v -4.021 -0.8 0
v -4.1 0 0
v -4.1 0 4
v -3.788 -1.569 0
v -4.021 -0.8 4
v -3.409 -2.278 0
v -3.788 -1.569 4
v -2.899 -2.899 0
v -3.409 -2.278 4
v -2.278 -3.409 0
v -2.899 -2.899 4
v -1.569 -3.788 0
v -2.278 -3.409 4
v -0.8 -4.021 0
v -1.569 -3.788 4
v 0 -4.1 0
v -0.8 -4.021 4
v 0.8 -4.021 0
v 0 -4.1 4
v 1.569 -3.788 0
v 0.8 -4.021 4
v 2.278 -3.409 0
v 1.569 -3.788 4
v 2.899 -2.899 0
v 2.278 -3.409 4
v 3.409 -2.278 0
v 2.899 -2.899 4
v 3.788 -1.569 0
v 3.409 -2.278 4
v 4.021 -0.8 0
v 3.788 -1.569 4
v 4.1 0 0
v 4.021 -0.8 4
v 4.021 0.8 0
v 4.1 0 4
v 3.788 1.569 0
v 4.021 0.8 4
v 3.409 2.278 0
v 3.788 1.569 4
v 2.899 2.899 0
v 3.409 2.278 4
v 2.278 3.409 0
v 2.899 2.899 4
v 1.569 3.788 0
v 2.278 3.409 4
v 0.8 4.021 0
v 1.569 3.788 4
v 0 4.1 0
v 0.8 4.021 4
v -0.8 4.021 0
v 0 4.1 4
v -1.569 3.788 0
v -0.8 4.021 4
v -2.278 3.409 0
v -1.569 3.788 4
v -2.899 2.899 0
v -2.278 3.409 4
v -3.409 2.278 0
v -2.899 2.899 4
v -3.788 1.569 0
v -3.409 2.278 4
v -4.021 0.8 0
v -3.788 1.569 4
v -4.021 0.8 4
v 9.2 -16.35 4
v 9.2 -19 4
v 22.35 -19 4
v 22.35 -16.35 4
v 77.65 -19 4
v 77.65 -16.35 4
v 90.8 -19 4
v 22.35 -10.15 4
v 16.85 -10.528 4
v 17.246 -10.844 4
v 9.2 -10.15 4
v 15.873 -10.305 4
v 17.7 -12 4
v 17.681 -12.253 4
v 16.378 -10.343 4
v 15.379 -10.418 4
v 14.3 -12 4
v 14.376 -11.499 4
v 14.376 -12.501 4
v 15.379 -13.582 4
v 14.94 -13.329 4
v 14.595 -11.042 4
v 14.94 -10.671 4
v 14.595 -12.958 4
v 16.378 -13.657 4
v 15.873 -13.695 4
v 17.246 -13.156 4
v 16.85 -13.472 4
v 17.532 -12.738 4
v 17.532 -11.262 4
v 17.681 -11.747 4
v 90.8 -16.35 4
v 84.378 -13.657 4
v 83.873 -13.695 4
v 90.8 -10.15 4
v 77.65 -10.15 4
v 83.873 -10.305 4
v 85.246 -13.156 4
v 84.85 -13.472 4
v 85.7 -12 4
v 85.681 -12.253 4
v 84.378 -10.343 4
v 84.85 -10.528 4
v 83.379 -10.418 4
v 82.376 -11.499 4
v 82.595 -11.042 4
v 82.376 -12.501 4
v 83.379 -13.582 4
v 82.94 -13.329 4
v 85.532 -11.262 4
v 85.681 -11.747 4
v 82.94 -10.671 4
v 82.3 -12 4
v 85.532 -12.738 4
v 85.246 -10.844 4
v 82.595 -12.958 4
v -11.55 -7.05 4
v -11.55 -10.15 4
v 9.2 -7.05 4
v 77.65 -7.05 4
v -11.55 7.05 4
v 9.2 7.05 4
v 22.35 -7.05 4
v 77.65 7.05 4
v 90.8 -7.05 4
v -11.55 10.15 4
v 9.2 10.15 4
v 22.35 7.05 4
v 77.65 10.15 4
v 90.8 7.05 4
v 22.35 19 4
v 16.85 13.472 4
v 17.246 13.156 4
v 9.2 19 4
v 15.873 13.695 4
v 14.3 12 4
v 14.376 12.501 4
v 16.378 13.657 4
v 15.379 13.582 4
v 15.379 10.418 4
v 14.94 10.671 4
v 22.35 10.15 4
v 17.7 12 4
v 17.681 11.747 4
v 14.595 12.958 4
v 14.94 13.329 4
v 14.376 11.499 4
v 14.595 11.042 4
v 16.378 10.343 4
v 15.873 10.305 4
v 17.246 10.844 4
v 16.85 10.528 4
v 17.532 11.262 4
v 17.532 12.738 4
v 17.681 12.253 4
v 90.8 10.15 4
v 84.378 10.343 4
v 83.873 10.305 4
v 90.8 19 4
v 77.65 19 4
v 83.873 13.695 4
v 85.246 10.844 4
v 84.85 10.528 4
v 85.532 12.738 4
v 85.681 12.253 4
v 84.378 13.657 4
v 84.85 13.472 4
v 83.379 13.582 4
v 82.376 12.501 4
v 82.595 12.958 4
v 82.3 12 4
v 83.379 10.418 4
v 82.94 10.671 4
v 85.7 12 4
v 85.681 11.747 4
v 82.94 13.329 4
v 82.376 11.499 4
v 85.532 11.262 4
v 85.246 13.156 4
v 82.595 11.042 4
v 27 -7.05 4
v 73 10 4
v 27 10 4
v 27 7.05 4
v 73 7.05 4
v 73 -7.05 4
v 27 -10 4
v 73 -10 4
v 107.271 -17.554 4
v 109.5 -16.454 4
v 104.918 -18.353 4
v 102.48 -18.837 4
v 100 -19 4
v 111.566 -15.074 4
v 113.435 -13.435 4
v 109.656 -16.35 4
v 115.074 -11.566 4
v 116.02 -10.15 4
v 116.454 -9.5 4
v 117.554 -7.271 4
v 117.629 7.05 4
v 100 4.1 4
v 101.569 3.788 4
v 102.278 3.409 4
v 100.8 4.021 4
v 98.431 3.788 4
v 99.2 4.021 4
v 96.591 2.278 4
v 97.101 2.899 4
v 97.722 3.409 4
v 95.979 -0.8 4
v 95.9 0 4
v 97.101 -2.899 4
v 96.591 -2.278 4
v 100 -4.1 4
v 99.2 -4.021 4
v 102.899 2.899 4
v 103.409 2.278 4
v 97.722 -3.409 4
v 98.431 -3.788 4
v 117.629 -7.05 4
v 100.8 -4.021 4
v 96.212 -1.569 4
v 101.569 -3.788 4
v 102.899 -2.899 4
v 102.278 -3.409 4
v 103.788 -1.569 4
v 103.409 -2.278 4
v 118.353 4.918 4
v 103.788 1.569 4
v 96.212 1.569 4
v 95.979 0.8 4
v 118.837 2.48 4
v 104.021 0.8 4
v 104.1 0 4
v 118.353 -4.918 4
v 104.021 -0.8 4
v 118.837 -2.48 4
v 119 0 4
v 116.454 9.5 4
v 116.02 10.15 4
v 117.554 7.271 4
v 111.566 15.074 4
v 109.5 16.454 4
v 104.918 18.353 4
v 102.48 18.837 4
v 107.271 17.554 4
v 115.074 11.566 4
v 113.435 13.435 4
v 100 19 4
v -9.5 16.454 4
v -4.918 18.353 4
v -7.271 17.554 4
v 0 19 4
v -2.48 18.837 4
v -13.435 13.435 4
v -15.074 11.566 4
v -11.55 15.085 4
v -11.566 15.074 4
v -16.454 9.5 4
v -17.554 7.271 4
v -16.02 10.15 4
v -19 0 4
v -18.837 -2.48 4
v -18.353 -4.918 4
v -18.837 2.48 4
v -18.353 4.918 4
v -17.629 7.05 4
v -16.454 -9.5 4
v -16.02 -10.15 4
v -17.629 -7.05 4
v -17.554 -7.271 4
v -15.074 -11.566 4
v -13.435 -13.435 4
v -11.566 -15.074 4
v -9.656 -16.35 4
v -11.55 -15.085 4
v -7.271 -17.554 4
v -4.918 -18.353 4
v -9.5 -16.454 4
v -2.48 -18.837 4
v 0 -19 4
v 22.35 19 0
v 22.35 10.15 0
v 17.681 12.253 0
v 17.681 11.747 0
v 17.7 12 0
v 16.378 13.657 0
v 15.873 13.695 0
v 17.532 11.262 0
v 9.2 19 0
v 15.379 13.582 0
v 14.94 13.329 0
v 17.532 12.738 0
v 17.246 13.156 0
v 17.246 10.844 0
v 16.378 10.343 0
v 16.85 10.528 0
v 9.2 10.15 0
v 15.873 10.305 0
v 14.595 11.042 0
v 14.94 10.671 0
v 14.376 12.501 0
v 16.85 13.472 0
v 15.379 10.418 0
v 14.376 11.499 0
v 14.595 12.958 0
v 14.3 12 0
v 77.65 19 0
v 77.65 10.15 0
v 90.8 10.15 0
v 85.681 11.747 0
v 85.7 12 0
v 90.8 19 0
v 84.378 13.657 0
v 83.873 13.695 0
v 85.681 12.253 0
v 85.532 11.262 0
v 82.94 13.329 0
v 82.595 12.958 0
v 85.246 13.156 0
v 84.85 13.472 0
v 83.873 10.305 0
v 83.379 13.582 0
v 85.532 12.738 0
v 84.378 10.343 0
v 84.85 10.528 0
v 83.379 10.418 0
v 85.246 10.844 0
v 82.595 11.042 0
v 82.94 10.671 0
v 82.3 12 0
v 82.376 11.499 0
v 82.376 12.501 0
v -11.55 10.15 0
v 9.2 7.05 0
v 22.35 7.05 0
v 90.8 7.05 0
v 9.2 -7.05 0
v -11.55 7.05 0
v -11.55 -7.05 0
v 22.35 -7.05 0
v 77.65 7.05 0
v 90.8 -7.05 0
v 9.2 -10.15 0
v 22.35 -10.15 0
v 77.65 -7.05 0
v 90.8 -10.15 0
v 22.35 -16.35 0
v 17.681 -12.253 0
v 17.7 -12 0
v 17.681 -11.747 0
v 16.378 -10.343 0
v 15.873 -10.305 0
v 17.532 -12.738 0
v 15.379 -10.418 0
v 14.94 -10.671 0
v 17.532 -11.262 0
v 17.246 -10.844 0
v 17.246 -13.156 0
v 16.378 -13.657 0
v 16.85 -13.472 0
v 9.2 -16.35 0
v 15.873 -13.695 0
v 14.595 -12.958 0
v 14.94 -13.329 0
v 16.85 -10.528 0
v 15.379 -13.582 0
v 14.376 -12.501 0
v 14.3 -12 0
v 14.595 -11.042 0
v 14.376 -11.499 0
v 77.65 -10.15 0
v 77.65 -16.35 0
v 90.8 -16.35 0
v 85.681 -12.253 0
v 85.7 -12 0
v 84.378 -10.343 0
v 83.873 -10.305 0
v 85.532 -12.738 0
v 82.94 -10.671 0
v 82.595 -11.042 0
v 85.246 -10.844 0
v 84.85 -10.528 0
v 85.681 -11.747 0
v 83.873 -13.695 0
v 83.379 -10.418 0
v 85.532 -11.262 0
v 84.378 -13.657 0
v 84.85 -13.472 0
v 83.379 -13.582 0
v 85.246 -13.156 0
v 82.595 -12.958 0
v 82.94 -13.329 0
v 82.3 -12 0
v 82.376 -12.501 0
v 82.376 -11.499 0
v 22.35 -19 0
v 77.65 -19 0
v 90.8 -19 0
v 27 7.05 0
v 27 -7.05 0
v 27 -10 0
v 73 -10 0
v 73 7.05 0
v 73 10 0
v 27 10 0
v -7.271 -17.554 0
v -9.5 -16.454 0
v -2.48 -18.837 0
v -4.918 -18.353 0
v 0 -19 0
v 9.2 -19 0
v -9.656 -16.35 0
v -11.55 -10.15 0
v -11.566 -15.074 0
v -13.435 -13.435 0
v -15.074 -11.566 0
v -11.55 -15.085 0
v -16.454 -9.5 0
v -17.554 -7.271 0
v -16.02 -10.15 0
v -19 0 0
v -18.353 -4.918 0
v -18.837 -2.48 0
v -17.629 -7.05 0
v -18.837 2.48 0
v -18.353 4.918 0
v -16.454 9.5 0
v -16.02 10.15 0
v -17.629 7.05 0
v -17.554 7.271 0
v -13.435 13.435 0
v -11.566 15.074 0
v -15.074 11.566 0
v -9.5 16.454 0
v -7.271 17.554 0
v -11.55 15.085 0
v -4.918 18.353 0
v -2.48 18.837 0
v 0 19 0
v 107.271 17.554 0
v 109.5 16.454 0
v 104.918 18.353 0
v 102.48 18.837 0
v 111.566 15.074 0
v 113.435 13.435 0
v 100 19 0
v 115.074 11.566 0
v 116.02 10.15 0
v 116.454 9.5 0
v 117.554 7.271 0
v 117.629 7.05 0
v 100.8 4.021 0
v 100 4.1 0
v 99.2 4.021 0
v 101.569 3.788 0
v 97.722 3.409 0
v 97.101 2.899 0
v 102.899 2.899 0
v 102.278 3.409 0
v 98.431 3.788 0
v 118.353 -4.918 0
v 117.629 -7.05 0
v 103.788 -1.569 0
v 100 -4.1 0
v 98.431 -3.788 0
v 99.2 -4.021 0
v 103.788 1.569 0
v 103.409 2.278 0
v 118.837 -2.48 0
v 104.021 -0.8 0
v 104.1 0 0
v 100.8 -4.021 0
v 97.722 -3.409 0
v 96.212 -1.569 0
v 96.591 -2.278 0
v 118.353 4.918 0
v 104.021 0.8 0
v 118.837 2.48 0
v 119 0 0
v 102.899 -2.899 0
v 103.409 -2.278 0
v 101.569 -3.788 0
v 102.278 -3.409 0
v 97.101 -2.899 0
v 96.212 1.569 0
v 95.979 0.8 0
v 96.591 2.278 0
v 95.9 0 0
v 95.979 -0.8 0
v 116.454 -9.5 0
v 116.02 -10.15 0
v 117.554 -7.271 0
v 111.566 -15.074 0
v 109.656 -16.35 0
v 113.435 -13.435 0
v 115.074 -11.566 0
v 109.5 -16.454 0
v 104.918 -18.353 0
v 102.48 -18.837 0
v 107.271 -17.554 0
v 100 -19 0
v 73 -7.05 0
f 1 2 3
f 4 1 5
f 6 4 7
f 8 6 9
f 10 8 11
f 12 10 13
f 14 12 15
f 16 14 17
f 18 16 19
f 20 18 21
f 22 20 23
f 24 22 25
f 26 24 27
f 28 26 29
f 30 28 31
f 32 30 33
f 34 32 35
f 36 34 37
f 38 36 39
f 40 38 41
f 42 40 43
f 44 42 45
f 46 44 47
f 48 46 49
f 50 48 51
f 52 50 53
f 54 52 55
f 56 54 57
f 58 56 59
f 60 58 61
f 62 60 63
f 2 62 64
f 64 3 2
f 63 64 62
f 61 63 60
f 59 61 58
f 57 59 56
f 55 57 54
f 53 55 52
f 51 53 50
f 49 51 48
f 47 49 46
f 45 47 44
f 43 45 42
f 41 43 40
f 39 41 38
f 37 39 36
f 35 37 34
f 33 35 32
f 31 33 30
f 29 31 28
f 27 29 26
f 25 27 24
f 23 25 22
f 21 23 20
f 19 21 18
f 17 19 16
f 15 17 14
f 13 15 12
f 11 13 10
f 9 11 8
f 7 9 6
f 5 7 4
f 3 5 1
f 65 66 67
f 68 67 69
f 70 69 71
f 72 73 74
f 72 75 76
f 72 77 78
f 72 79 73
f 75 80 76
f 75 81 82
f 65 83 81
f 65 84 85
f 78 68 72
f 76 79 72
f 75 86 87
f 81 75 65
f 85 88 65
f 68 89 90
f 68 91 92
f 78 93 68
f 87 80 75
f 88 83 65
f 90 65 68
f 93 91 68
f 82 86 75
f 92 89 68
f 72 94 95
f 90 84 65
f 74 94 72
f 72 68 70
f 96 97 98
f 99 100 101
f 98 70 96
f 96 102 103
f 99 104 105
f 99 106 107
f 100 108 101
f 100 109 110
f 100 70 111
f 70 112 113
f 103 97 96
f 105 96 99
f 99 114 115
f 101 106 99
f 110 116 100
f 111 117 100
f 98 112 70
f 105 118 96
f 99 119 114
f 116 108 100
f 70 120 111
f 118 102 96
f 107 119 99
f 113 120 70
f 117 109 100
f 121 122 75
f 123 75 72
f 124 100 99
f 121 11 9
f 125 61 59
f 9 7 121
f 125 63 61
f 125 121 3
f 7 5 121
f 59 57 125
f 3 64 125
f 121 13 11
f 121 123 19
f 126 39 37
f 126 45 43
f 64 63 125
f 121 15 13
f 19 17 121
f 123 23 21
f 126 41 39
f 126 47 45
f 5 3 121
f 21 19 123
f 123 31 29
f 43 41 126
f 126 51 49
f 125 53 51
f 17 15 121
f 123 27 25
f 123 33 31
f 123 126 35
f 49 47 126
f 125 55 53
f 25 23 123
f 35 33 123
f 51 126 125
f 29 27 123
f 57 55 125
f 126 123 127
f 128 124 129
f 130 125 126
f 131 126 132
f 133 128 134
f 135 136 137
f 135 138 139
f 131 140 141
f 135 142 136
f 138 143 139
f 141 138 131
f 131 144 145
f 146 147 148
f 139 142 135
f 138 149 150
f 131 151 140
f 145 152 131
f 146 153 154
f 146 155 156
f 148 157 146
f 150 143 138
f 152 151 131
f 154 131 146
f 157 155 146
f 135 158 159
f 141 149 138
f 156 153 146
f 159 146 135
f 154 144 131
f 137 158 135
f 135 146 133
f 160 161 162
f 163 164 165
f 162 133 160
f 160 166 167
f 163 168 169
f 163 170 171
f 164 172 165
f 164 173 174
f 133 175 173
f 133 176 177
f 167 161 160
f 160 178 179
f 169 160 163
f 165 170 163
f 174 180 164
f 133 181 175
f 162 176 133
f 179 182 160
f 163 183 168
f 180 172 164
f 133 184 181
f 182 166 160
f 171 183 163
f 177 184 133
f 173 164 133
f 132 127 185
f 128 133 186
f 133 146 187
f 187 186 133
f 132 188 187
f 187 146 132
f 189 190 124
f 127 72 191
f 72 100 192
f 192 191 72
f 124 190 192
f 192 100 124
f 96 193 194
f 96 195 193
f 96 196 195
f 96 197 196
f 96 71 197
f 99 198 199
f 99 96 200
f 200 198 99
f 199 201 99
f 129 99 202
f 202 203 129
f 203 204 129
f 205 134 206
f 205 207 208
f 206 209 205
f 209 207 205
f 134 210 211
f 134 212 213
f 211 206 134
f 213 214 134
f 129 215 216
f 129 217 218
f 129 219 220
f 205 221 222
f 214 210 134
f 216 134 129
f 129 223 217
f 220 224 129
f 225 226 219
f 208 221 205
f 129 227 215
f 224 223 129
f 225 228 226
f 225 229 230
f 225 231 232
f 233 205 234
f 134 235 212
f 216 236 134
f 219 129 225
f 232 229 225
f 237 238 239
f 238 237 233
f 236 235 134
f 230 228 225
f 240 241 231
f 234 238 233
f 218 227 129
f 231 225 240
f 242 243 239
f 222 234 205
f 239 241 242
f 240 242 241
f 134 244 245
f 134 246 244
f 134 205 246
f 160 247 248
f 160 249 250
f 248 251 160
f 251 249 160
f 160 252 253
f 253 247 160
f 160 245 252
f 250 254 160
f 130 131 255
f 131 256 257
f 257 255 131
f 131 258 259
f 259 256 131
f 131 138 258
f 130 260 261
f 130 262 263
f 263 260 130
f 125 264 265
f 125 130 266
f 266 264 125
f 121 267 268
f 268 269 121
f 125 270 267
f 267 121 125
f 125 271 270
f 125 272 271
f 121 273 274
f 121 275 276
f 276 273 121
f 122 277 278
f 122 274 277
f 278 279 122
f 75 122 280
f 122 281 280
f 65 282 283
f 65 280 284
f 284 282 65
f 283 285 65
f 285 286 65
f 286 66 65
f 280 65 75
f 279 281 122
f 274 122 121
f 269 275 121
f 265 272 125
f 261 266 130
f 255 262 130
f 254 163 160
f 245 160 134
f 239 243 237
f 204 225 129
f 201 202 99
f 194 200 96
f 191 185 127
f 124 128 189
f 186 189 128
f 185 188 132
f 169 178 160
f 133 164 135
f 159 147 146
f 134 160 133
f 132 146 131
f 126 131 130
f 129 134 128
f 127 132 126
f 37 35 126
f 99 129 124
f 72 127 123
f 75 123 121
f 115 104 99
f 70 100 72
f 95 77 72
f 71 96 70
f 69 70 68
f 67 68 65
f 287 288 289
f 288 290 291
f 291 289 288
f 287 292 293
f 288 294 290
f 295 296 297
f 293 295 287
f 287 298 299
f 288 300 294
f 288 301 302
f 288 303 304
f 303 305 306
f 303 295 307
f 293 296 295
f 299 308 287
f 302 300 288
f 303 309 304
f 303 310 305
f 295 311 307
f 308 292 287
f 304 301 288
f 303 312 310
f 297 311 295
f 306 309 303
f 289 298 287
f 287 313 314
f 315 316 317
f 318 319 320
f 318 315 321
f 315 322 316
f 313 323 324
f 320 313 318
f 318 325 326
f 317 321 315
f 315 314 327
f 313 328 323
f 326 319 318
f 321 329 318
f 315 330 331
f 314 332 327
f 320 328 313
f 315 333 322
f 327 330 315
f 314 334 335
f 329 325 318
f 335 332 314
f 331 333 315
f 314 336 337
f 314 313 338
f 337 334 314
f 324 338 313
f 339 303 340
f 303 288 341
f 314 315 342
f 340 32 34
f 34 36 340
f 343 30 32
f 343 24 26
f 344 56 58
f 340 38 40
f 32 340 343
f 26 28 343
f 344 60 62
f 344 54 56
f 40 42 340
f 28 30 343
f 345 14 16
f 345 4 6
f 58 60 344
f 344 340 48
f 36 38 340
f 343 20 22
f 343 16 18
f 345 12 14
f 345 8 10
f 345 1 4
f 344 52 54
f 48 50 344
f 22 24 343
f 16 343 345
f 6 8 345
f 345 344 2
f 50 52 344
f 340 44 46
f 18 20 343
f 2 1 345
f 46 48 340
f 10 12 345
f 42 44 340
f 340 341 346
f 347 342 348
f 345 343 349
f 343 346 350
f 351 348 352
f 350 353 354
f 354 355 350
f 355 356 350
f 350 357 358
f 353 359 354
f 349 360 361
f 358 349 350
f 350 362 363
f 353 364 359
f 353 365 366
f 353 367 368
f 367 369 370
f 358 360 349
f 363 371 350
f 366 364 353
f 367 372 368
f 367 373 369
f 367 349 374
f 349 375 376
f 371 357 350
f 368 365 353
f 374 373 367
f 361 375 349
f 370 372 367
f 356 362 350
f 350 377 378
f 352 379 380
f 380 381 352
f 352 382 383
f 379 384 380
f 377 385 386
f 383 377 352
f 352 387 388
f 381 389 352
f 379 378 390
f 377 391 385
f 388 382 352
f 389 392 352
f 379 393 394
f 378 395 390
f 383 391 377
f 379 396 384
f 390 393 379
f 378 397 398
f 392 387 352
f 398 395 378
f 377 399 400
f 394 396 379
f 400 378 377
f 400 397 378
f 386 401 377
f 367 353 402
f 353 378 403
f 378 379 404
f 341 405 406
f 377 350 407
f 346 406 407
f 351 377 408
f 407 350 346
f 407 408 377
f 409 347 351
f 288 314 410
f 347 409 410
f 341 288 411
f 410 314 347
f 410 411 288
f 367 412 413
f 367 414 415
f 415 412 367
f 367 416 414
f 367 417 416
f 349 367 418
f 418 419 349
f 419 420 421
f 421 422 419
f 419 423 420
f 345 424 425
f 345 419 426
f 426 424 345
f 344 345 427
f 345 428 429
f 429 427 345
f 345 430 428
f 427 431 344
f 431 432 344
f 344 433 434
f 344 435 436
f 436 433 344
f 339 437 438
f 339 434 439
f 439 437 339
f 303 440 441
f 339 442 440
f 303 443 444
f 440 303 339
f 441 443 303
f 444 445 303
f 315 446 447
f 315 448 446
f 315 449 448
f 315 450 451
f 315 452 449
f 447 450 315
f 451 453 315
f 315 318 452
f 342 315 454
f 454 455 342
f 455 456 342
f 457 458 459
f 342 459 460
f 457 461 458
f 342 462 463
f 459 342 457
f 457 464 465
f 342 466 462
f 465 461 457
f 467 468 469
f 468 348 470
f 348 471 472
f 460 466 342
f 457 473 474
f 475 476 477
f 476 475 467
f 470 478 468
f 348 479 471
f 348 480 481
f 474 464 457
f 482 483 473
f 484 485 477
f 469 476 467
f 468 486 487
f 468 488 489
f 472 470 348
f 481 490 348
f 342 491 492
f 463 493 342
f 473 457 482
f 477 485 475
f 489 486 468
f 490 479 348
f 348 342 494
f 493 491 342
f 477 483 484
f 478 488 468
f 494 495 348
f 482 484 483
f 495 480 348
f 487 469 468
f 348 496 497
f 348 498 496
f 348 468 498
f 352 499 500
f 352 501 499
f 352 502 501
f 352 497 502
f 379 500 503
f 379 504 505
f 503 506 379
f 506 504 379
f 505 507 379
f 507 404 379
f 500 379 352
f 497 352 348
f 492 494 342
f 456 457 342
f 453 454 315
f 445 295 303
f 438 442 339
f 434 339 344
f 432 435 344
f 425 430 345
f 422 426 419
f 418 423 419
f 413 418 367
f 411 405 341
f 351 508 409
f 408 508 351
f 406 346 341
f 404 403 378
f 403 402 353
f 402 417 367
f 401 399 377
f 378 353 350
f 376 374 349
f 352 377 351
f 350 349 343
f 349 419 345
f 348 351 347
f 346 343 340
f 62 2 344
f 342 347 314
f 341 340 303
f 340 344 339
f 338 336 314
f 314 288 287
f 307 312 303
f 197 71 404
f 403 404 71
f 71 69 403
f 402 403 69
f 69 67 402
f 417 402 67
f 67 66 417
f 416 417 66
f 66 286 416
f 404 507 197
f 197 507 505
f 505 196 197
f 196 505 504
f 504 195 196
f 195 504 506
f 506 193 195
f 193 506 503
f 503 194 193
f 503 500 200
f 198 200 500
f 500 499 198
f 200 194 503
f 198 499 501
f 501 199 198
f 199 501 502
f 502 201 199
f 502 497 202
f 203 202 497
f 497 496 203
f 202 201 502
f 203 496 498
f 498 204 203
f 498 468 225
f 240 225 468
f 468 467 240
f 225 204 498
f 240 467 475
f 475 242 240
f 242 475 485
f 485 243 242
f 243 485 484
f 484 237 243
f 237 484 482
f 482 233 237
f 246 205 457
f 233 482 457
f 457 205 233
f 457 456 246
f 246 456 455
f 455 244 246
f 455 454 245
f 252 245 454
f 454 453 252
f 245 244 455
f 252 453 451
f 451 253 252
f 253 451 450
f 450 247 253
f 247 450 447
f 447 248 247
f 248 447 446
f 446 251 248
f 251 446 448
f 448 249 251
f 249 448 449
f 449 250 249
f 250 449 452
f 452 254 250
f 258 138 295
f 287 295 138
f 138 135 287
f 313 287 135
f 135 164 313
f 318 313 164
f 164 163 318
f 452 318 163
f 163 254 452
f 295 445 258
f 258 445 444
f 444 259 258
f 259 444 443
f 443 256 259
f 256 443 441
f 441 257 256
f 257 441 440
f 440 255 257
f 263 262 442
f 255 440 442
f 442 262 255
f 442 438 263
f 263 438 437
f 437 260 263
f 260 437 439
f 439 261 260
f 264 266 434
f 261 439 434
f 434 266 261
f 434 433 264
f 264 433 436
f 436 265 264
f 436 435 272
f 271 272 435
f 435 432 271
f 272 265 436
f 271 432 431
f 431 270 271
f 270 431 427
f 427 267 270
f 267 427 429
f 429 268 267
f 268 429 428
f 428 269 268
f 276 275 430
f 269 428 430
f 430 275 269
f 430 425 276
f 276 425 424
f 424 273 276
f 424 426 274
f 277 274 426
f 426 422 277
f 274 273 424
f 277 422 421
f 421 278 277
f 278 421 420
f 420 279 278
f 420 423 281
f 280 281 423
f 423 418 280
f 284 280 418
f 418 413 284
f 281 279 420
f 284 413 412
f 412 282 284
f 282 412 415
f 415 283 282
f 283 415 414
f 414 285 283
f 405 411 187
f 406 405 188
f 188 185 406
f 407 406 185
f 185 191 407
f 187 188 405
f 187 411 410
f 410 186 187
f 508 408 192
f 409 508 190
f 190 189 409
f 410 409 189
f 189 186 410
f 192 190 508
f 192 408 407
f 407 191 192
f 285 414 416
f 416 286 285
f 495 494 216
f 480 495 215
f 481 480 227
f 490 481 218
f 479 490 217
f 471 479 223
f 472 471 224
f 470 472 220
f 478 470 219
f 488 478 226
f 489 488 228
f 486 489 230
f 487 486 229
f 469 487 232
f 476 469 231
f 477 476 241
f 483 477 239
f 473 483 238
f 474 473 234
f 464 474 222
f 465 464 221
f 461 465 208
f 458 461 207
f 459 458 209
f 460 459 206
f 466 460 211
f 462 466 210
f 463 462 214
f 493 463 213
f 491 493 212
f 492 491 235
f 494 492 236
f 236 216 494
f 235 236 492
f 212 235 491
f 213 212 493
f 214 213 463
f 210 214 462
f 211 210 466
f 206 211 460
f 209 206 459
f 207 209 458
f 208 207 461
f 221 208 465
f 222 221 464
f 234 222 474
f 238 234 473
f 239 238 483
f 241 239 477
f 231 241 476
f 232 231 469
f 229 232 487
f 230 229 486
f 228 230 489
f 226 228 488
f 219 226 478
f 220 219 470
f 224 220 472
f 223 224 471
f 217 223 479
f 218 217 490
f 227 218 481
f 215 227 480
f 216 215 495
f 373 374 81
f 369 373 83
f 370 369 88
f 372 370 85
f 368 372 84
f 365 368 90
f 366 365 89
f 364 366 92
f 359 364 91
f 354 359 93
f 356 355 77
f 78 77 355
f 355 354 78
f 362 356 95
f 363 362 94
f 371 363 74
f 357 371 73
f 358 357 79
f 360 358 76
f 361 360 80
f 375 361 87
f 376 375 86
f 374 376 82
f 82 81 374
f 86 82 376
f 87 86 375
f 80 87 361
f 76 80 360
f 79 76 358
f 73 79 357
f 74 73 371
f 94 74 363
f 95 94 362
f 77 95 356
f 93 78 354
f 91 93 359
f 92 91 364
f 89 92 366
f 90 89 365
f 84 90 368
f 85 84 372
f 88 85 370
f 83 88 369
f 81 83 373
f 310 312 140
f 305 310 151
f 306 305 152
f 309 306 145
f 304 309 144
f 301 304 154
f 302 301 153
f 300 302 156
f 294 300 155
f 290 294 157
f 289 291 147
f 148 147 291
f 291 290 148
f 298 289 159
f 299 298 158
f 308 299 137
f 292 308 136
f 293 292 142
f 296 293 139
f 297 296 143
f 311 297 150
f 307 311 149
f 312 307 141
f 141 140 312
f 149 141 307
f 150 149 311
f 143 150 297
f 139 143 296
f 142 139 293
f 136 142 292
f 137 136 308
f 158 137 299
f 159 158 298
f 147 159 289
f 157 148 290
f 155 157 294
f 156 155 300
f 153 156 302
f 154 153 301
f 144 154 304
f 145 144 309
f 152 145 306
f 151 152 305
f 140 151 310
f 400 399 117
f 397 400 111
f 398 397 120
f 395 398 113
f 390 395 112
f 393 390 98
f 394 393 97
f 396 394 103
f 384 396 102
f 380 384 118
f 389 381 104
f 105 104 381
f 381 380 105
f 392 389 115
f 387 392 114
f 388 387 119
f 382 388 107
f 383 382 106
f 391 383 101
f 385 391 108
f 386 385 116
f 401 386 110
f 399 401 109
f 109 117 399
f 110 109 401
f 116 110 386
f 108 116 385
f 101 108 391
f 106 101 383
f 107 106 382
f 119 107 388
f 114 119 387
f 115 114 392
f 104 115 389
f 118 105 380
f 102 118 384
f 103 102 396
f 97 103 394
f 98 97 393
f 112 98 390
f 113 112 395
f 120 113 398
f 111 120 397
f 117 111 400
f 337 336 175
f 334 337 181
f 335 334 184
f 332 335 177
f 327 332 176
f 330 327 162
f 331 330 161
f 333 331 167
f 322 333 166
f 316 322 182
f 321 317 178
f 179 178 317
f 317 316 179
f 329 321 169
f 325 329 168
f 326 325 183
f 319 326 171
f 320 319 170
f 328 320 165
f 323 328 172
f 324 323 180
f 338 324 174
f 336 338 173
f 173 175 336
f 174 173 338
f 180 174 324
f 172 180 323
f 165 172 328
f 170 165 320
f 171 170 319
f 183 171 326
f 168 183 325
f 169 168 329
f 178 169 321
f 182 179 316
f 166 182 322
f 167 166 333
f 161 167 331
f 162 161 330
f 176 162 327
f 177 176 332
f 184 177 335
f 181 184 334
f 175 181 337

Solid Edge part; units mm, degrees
sketch "Sketch1" plane through (0, 0, 0) normal (0, 0, 1) x (1, 0, 0)
  line L0 (100, -19) -> (102.48, -18.8375)
  line L1 (102.48, -18.8375) -> (104.9176, -18.3526)
  line L2 (104.9176, -18.3526) -> (107.271, -17.5537)
  line L3 (107.271, -17.5537) -> (109.5, -16.4545)
  line L4 (109.5, -16.4545) -> (111.5665, -15.0737)
  line L5 (111.5665, -15.0737) -> (113.435, -13.435)
  line L6 (113.435, -13.435) -> (115.0737, -11.5665)
  line L7 (115.0737, -11.5665) -> (116.4545, -9.5)
  line L8 (116.4545, -9.5) -> (117.5537, -7.271)
  line L9 (117.5537, -7.271) -> (118.3526, -4.9176)
  line L10 (118.3526, -4.9176) -> (118.8375, -2.48)
  line L11 (118.8375, -2.48) -> (119, 0)
  line L12 (119, 0) -> (118.8375, 2.48)
  line L13 (118.8375, 2.48) -> (118.3526, 4.9176)
  line L14 (118.3526, 4.9176) -> (117.5537, 7.271)
  line L15 (117.5537, 7.271) -> (116.4545, 9.5)
  line L16 (116.4545, 9.5) -> (115.0737, 11.5665)
  line L17 (115.0737, 11.5665) -> (113.435, 13.435)
  line L18 (113.435, 13.435) -> (111.5665, 15.0737)
  line L19 (111.5665, 15.0737) -> (109.5, 16.4545)
  line L20 (109.5, 16.4545) -> (107.271, 17.5537)
  line L21 (107.271, 17.5537) -> (104.9176, 18.3526)
  line L22 (104.9176, 18.3526) -> (102.48, 18.8375)
  line L23 (102.48, 18.8375) -> (100, 19)
  line L24 (100, 19) -> (0, 19)
  line L25 (0, 19) -> (-2.48, 18.8375)
  line L26 (-2.48, 18.8375) -> (-4.9176, 18.3526)
  line L27 (-4.9176, 18.3526) -> (-7.271, 17.5537)
  line L28 (-7.271, 17.5537) -> (-9.5, 16.4545)
  line L29 (-9.5, 16.4545) -> (-11.5665, 15.0737)
  line L30 (-11.5665, 15.0737) -> (-13.435, 13.435)
  line L31 (-13.435, 13.435) -> (-15.0737, 11.5665)
  line L32 (-15.0737, 11.5665) -> (-16.4545, 9.5)
  line L33 (-16.4545, 9.5) -> (-17.5537, 7.271)
  line L34 (-17.5537, 7.271) -> (-18.3526, 4.9176)
  line L35 (-18.3526, 4.9176) -> (-18.8375, 2.48)
  line L36 (-18.8375, 2.48) -> (-19, 0)
  line L37 (-19, 0) -> (-18.8375, -2.48)
  line L38 (-18.8375, -2.48) -> (-18.3526, -4.9176)
  line L39 (-18.3526, -4.9176) -> (-17.5537, -7.271)
  line L40 (-17.5537, -7.271) -> (-16.4545, -9.5)
  line L41 (-16.4545, -9.5) -> (-15.0737, -11.5665)
  line L42 (-15.0737, -11.5665) -> (-13.435, -13.435)
  line L43 (-13.435, -13.435) -> (-11.5665, -15.0737)
  line L44 (-11.5665, -15.0737) -> (-9.5, -16.4545)
  line L45 (-9.5, -16.4545) -> (-7.271, -17.5537)
  line L46 (-7.271, -17.5537) -> (-4.9176, -18.3526)
  line L47 (-4.9176, -18.3526) -> (-2.48, -18.8375)
  line L48 (-2.48, -18.8375) -> (0, -19)
  line L49 (0, -19) -> (100, -19)
  circle A0 centre (0, 0) radius 4.1
  circle A1 centre (100, 0) radius 4.1
  line L50 (27, -10) -> (73, -10)
  line L51 (73, -10) -> (73, 10)
  line L52 (73, 10) -> (27, 10)
  line L53 (27, 10) -> (27, -10)
  circle A2 centre (16, -12) radius 1.7
  circle A3 centre (16, 12) radius 1.7
  circle A4 centre (84, -12) radius 1.7
  circle A5 centre (84, 12) radius 1.7
extrude "Protrusion1" add sketch "Sketch1" along normal blind 4
